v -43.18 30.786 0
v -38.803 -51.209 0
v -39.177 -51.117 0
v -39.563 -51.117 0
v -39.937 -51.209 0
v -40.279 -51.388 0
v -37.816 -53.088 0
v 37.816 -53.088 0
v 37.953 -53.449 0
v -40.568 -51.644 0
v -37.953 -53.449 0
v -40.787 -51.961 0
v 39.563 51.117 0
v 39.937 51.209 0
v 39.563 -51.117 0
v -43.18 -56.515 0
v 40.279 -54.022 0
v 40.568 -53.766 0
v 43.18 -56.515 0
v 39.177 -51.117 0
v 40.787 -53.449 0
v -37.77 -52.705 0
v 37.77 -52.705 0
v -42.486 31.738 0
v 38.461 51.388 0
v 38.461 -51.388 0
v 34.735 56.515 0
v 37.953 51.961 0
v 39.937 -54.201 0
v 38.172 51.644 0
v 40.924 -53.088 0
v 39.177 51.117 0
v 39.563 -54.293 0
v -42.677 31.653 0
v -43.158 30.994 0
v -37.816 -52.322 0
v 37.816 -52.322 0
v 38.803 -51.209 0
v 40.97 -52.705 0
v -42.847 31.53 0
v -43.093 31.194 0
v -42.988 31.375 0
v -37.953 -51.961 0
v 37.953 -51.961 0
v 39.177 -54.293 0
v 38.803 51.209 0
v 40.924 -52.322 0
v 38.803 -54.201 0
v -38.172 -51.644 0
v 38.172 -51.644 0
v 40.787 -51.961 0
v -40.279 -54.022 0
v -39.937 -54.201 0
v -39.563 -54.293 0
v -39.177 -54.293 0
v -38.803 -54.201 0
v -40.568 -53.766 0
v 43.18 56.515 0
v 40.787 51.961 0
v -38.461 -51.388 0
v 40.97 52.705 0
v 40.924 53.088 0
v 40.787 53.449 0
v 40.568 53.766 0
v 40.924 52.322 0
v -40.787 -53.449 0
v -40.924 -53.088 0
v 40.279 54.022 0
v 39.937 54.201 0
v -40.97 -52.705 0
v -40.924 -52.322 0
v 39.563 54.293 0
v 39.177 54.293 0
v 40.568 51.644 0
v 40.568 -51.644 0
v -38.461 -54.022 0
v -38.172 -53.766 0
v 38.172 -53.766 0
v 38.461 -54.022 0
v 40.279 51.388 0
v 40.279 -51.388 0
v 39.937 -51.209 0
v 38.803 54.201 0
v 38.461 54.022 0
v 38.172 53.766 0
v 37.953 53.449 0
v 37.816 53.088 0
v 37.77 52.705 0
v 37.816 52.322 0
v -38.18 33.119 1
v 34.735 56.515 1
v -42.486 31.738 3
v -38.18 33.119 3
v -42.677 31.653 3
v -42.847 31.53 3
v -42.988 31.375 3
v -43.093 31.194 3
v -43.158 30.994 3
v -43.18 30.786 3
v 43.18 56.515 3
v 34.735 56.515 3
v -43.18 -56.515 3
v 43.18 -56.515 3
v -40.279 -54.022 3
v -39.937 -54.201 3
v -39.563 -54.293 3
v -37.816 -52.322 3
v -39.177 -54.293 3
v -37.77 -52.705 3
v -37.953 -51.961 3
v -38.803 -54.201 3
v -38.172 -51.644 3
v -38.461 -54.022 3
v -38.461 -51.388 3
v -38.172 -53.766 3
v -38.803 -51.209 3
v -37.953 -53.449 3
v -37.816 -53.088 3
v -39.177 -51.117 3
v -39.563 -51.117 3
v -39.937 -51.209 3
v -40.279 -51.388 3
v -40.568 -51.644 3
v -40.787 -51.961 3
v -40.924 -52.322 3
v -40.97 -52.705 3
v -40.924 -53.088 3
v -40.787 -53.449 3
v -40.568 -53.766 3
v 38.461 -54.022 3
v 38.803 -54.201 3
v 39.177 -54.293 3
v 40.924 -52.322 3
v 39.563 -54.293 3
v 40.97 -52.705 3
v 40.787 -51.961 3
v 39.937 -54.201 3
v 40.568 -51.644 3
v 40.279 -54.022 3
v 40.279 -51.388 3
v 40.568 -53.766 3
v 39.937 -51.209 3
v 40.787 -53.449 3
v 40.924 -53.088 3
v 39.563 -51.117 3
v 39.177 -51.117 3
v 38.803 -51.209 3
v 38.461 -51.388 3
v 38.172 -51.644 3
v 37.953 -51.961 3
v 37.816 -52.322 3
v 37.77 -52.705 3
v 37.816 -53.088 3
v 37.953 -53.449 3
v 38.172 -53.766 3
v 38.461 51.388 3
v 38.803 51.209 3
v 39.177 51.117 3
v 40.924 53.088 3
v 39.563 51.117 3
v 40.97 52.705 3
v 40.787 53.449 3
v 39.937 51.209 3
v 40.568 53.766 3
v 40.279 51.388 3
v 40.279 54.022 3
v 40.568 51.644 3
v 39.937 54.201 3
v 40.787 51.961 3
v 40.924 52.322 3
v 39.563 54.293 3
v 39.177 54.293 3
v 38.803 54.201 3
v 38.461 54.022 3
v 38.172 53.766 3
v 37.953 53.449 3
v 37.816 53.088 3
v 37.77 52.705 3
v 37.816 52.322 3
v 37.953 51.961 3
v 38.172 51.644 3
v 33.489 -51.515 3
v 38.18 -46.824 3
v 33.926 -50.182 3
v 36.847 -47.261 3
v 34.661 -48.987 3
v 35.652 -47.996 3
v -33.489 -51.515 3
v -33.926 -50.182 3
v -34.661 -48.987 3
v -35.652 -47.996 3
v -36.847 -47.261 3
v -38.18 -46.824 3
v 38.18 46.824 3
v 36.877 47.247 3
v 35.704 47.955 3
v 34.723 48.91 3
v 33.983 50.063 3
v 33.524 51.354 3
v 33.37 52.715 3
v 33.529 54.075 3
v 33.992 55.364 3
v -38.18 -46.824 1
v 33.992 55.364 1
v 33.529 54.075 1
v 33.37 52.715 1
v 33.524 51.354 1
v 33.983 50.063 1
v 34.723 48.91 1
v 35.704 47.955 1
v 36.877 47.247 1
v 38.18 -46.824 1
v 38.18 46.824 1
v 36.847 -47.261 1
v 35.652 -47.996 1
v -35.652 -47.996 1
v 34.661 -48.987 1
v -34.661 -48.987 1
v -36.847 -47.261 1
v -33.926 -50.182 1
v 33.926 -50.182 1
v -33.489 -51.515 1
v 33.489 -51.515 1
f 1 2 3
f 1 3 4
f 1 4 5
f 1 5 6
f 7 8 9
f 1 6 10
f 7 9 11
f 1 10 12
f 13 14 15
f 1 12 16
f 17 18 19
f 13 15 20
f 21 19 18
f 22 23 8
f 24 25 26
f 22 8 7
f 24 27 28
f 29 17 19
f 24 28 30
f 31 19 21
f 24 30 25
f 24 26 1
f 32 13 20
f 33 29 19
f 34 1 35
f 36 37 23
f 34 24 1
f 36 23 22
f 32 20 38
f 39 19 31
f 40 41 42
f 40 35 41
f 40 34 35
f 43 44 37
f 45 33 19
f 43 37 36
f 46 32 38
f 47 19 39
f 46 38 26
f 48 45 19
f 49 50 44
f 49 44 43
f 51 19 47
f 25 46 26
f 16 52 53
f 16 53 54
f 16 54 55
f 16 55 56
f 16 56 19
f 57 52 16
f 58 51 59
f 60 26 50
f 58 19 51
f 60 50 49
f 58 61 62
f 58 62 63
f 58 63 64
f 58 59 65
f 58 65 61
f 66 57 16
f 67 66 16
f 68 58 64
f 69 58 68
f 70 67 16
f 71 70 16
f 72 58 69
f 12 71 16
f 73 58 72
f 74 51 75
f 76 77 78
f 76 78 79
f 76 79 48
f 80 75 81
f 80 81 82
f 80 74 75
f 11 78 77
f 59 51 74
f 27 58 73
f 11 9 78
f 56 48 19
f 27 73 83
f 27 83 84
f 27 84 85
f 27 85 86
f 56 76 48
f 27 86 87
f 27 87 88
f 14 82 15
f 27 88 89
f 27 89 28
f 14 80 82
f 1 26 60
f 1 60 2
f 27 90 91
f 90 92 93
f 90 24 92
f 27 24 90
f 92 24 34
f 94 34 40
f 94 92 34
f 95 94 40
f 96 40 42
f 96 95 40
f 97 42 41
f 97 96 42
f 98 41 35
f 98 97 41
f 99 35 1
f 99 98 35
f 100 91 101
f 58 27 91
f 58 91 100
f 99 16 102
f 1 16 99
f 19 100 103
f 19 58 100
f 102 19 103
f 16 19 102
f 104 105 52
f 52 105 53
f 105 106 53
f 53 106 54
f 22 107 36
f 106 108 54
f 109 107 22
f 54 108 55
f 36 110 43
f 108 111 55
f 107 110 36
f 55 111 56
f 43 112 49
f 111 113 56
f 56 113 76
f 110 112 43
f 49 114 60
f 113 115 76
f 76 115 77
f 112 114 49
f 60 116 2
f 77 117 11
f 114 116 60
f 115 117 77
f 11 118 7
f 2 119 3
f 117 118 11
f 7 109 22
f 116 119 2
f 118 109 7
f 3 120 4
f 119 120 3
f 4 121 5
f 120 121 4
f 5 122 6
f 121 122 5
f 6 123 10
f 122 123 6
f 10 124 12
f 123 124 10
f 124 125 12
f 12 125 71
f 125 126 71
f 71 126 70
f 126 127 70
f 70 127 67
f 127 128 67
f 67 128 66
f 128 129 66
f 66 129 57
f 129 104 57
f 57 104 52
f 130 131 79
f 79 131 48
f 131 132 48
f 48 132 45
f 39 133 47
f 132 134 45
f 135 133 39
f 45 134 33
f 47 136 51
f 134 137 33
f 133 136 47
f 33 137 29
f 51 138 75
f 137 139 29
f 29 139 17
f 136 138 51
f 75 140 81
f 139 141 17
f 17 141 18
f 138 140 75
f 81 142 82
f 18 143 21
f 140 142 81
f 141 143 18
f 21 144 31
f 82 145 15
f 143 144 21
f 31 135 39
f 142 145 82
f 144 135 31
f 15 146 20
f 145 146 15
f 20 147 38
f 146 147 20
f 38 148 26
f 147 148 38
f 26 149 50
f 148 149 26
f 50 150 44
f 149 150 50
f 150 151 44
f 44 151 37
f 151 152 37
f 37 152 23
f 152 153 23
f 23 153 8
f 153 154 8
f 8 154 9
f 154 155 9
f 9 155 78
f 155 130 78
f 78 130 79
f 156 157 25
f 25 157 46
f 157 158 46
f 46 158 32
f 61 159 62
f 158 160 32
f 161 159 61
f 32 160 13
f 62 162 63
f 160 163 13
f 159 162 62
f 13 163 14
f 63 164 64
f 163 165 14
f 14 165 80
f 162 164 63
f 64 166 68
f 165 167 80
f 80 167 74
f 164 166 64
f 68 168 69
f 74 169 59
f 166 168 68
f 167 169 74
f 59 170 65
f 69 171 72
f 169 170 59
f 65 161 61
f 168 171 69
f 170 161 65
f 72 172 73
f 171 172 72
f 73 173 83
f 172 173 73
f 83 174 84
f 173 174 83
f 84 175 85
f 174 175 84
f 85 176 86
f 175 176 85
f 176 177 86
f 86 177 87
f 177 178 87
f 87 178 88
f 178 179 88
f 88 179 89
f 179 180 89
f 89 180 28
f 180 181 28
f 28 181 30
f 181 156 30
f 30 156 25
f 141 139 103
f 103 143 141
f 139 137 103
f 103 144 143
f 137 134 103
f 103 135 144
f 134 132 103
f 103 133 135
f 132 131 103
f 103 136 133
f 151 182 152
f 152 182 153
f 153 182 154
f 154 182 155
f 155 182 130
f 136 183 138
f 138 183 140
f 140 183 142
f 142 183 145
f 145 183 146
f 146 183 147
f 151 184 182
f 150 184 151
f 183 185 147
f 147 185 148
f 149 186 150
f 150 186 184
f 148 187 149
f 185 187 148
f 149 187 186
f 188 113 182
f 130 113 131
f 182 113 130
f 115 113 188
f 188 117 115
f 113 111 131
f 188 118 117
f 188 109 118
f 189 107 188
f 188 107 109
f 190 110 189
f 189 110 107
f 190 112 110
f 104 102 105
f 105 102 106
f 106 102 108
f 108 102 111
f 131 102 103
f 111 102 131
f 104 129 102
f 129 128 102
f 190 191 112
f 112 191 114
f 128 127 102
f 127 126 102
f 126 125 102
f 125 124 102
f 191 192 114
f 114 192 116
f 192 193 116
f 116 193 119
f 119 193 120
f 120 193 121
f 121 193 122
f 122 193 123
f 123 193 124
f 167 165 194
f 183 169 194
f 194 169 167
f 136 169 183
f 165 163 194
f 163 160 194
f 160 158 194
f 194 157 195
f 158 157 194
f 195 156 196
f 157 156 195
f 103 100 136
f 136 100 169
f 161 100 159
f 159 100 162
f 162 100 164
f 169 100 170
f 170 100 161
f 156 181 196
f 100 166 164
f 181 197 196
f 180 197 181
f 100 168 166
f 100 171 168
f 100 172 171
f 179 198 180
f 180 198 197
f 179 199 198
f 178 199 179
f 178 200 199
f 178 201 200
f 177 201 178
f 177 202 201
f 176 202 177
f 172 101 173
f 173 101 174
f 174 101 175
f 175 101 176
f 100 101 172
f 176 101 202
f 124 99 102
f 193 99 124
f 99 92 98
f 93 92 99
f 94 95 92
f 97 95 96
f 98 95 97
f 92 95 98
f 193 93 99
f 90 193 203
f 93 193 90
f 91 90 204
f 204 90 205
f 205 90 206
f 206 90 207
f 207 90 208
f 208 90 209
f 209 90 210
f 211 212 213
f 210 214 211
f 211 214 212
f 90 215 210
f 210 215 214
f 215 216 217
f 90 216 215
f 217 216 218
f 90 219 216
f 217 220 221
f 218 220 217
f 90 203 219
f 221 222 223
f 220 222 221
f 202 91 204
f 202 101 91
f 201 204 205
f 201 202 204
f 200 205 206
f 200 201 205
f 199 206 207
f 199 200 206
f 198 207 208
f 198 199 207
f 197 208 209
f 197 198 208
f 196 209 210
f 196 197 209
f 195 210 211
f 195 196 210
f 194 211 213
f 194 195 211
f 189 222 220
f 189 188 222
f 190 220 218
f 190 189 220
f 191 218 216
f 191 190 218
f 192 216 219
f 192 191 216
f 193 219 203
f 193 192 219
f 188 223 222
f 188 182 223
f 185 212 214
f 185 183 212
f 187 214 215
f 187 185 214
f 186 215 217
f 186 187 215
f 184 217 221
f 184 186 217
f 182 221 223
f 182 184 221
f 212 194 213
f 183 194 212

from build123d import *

# Parameters (mm, degrees)
SKETCH_W           = 86.36
SKETCH_H           = 113.03
PAD_DEPTH          = 10
SKETCH001_R        = 1.6
POCKET_DEPTH       = 1
POCKET001_DEPTH    = 9
POCKET002_DEPTH    = 10.001
FILLET_R           = 1
FILLET_FACE20_R    = 1.6
POCKET003_DEPTH    = 9.001
POCKET003_FACE20_R = 1.6
POCKET004_DEPTH    = 9.001
POCKET004_FACE21_R = 1.6
POCKET005_DEPTH    = 9.001
POCKET005_FACE11_R = 1.6
POCKET006_DEPTH    = 7


with BuildPart() as part:
    # Sketch → Pad (new body)
    with BuildSketch(Plane.XY):
        Rectangle(SKETCH_W, SKETCH_H)
    extrude(amount=PAD_DEPTH)

    # Sketch001 (on Face6 of Pad) → Pocket (cut)
    with BuildSketch(Plane.XY.offset(10)):
        with Locations((-39.37, -52.705)):
            Circle(SKETCH001_R)
        with Locations((39.37, -52.705)):
            Circle(SKETCH001_R)
        with Locations((39.37, 52.705)):
            Circle(SKETCH001_R)
    extrude(amount=-POCKET_DEPTH, mode=Mode.SUBTRACT)

    # Sketch002 (on Face5 of Pocket) → Pocket001 (cut)
    with BuildSketch(Plane.XY.offset(10)):
        with BuildLine():
            Line((-38.18, 56.515), (34.734927, 56.515))
            ThreePointArc((34.734927, 56.515), (33.716611, 50.695226), (38.18, 46.824192))
            Line((38.18, -46.824192), (38.18, 46.824192))
            ThreePointArc((38.18, -46.824192), (35.127359, -48.462359), (33.489192, -51.515))
            Line((-33.489192, -51.515), (33.489192, -51.515))
            ThreePointArc((-33.489192, -51.515), (-35.127359, -48.462359), (-38.18, -46.824192))
            Line((-38.18, -46.824192), (-38.18, 56.515))
        make_face()
    extrude(amount=-POCKET001_DEPTH, mode=Mode.SUBTRACT)

    # Sketch003 (on Face2 of Pocket001) → Pocket002 (cut, through all)
    with BuildSketch(Plane(origin=(0, 0, 0), x_dir=(1, 0, 0), z_dir=(0, 0, -1))):
        Polygon((34.734927, -56.515), (-43.18, -31.515), (-75.693622, -36.778853), (-62.654191, -136.900963), (71.529642, -145.781613), align=None)
    extrude(amount=-POCKET002_DEPTH, mode=Mode.SUBTRACT)

    # Fillet
    fillet_edges = [part.edges().sort_by_distance(p)[0] for p in [
        (-43.18, 31.515, 5),
    ]]
    fillet(fillet_edges, radius=FILLET_R)

    # Fillet Face20 → Pocket003 (cut, through all)
    with BuildSketch(Plane(origin=(39.37, 52.705, 9), x_dir=(0, 1, 0), z_dir=(0, 0, 1))):
        Circle(FILLET_FACE20_R)
    extrude(amount=-POCKET003_DEPTH, mode=Mode.SUBTRACT)

    # Pocket003 Face20 → Pocket004 (cut, through all)
    with BuildSketch(Plane(origin=(39.37, -52.705, 9), x_dir=(0, 1, 0), z_dir=(0, 0, 1))):
        Circle(POCKET003_FACE20_R)
    extrude(amount=-POCKET004_DEPTH, mode=Mode.SUBTRACT)

    # Pocket004 Face21 → Pocket005 (cut, through all)
    with BuildSketch(Plane(origin=(-39.37, -52.705, 9), x_dir=(0, 1, 0), z_dir=(0, 0, 1))):
        Circle(POCKET004_FACE21_R)
    extrude(amount=-POCKET005_DEPTH, mode=Mode.SUBTRACT)

    # Pocket005 Face11 → Pocket006 (cut)
    with BuildSketch(Plane(origin=(4.164338, -17.509982, 10), x_dir=(0, 1, 0), z_dir=(0, 0, 1))):
        with BuildLine():
            Line((50.629296, 42.344338), (49.247815, 46.649859))
            ThreePointArc((49.247815, 46.649859), (48.8849, 47.152274), (48.295629, 47.344338))
            Line((48.295629, 47.344338), (-39.005018, 47.344338))
            Line((-39.005018, 47.344338), (-39.005018, -39.015662))
            Line((-39.005018, -39.015662), (74.024982, -39.015662))
            Line((74.024982, -39.015662), (74.024982, -30.570589))
            ThreePointArc((74.024982, -30.570589), (68.205208, -29.552273), (64.334174, -34.015662))
            Line((64.334174, -34.015662), (-29.31421, -34.015662))
            ThreePointArc((-29.31421, -34.015662), (-30.952377, -30.963021), (-34.005018, -29.324854))
            Line((-34.005018, -29.324854), (-34.005018, 37.65353))
            ThreePointArc((-34.005018, 37.65353), (-30.952377, 39.291697), (-29.31421, 42.344338))
            Line((-29.31421, 42.344338), (50.629296, 42.344338))
        make_face()
        with Locations((-35.195018, -35.205662)):
            Circle(POCKET005_FACE11_R, mode=Mode.SUBTRACT)
        with Locations((70.214982, -35.205662)):
            Circle(POCKET005_FACE11_R, mode=Mode.SUBTRACT)
        with Locations((-35.195018, 43.534338)):
            Circle(POCKET005_FACE11_R, mode=Mode.SUBTRACT)
    extrude(amount=-POCKET006_DEPTH, mode=Mode.SUBTRACT)


solid = part.part
